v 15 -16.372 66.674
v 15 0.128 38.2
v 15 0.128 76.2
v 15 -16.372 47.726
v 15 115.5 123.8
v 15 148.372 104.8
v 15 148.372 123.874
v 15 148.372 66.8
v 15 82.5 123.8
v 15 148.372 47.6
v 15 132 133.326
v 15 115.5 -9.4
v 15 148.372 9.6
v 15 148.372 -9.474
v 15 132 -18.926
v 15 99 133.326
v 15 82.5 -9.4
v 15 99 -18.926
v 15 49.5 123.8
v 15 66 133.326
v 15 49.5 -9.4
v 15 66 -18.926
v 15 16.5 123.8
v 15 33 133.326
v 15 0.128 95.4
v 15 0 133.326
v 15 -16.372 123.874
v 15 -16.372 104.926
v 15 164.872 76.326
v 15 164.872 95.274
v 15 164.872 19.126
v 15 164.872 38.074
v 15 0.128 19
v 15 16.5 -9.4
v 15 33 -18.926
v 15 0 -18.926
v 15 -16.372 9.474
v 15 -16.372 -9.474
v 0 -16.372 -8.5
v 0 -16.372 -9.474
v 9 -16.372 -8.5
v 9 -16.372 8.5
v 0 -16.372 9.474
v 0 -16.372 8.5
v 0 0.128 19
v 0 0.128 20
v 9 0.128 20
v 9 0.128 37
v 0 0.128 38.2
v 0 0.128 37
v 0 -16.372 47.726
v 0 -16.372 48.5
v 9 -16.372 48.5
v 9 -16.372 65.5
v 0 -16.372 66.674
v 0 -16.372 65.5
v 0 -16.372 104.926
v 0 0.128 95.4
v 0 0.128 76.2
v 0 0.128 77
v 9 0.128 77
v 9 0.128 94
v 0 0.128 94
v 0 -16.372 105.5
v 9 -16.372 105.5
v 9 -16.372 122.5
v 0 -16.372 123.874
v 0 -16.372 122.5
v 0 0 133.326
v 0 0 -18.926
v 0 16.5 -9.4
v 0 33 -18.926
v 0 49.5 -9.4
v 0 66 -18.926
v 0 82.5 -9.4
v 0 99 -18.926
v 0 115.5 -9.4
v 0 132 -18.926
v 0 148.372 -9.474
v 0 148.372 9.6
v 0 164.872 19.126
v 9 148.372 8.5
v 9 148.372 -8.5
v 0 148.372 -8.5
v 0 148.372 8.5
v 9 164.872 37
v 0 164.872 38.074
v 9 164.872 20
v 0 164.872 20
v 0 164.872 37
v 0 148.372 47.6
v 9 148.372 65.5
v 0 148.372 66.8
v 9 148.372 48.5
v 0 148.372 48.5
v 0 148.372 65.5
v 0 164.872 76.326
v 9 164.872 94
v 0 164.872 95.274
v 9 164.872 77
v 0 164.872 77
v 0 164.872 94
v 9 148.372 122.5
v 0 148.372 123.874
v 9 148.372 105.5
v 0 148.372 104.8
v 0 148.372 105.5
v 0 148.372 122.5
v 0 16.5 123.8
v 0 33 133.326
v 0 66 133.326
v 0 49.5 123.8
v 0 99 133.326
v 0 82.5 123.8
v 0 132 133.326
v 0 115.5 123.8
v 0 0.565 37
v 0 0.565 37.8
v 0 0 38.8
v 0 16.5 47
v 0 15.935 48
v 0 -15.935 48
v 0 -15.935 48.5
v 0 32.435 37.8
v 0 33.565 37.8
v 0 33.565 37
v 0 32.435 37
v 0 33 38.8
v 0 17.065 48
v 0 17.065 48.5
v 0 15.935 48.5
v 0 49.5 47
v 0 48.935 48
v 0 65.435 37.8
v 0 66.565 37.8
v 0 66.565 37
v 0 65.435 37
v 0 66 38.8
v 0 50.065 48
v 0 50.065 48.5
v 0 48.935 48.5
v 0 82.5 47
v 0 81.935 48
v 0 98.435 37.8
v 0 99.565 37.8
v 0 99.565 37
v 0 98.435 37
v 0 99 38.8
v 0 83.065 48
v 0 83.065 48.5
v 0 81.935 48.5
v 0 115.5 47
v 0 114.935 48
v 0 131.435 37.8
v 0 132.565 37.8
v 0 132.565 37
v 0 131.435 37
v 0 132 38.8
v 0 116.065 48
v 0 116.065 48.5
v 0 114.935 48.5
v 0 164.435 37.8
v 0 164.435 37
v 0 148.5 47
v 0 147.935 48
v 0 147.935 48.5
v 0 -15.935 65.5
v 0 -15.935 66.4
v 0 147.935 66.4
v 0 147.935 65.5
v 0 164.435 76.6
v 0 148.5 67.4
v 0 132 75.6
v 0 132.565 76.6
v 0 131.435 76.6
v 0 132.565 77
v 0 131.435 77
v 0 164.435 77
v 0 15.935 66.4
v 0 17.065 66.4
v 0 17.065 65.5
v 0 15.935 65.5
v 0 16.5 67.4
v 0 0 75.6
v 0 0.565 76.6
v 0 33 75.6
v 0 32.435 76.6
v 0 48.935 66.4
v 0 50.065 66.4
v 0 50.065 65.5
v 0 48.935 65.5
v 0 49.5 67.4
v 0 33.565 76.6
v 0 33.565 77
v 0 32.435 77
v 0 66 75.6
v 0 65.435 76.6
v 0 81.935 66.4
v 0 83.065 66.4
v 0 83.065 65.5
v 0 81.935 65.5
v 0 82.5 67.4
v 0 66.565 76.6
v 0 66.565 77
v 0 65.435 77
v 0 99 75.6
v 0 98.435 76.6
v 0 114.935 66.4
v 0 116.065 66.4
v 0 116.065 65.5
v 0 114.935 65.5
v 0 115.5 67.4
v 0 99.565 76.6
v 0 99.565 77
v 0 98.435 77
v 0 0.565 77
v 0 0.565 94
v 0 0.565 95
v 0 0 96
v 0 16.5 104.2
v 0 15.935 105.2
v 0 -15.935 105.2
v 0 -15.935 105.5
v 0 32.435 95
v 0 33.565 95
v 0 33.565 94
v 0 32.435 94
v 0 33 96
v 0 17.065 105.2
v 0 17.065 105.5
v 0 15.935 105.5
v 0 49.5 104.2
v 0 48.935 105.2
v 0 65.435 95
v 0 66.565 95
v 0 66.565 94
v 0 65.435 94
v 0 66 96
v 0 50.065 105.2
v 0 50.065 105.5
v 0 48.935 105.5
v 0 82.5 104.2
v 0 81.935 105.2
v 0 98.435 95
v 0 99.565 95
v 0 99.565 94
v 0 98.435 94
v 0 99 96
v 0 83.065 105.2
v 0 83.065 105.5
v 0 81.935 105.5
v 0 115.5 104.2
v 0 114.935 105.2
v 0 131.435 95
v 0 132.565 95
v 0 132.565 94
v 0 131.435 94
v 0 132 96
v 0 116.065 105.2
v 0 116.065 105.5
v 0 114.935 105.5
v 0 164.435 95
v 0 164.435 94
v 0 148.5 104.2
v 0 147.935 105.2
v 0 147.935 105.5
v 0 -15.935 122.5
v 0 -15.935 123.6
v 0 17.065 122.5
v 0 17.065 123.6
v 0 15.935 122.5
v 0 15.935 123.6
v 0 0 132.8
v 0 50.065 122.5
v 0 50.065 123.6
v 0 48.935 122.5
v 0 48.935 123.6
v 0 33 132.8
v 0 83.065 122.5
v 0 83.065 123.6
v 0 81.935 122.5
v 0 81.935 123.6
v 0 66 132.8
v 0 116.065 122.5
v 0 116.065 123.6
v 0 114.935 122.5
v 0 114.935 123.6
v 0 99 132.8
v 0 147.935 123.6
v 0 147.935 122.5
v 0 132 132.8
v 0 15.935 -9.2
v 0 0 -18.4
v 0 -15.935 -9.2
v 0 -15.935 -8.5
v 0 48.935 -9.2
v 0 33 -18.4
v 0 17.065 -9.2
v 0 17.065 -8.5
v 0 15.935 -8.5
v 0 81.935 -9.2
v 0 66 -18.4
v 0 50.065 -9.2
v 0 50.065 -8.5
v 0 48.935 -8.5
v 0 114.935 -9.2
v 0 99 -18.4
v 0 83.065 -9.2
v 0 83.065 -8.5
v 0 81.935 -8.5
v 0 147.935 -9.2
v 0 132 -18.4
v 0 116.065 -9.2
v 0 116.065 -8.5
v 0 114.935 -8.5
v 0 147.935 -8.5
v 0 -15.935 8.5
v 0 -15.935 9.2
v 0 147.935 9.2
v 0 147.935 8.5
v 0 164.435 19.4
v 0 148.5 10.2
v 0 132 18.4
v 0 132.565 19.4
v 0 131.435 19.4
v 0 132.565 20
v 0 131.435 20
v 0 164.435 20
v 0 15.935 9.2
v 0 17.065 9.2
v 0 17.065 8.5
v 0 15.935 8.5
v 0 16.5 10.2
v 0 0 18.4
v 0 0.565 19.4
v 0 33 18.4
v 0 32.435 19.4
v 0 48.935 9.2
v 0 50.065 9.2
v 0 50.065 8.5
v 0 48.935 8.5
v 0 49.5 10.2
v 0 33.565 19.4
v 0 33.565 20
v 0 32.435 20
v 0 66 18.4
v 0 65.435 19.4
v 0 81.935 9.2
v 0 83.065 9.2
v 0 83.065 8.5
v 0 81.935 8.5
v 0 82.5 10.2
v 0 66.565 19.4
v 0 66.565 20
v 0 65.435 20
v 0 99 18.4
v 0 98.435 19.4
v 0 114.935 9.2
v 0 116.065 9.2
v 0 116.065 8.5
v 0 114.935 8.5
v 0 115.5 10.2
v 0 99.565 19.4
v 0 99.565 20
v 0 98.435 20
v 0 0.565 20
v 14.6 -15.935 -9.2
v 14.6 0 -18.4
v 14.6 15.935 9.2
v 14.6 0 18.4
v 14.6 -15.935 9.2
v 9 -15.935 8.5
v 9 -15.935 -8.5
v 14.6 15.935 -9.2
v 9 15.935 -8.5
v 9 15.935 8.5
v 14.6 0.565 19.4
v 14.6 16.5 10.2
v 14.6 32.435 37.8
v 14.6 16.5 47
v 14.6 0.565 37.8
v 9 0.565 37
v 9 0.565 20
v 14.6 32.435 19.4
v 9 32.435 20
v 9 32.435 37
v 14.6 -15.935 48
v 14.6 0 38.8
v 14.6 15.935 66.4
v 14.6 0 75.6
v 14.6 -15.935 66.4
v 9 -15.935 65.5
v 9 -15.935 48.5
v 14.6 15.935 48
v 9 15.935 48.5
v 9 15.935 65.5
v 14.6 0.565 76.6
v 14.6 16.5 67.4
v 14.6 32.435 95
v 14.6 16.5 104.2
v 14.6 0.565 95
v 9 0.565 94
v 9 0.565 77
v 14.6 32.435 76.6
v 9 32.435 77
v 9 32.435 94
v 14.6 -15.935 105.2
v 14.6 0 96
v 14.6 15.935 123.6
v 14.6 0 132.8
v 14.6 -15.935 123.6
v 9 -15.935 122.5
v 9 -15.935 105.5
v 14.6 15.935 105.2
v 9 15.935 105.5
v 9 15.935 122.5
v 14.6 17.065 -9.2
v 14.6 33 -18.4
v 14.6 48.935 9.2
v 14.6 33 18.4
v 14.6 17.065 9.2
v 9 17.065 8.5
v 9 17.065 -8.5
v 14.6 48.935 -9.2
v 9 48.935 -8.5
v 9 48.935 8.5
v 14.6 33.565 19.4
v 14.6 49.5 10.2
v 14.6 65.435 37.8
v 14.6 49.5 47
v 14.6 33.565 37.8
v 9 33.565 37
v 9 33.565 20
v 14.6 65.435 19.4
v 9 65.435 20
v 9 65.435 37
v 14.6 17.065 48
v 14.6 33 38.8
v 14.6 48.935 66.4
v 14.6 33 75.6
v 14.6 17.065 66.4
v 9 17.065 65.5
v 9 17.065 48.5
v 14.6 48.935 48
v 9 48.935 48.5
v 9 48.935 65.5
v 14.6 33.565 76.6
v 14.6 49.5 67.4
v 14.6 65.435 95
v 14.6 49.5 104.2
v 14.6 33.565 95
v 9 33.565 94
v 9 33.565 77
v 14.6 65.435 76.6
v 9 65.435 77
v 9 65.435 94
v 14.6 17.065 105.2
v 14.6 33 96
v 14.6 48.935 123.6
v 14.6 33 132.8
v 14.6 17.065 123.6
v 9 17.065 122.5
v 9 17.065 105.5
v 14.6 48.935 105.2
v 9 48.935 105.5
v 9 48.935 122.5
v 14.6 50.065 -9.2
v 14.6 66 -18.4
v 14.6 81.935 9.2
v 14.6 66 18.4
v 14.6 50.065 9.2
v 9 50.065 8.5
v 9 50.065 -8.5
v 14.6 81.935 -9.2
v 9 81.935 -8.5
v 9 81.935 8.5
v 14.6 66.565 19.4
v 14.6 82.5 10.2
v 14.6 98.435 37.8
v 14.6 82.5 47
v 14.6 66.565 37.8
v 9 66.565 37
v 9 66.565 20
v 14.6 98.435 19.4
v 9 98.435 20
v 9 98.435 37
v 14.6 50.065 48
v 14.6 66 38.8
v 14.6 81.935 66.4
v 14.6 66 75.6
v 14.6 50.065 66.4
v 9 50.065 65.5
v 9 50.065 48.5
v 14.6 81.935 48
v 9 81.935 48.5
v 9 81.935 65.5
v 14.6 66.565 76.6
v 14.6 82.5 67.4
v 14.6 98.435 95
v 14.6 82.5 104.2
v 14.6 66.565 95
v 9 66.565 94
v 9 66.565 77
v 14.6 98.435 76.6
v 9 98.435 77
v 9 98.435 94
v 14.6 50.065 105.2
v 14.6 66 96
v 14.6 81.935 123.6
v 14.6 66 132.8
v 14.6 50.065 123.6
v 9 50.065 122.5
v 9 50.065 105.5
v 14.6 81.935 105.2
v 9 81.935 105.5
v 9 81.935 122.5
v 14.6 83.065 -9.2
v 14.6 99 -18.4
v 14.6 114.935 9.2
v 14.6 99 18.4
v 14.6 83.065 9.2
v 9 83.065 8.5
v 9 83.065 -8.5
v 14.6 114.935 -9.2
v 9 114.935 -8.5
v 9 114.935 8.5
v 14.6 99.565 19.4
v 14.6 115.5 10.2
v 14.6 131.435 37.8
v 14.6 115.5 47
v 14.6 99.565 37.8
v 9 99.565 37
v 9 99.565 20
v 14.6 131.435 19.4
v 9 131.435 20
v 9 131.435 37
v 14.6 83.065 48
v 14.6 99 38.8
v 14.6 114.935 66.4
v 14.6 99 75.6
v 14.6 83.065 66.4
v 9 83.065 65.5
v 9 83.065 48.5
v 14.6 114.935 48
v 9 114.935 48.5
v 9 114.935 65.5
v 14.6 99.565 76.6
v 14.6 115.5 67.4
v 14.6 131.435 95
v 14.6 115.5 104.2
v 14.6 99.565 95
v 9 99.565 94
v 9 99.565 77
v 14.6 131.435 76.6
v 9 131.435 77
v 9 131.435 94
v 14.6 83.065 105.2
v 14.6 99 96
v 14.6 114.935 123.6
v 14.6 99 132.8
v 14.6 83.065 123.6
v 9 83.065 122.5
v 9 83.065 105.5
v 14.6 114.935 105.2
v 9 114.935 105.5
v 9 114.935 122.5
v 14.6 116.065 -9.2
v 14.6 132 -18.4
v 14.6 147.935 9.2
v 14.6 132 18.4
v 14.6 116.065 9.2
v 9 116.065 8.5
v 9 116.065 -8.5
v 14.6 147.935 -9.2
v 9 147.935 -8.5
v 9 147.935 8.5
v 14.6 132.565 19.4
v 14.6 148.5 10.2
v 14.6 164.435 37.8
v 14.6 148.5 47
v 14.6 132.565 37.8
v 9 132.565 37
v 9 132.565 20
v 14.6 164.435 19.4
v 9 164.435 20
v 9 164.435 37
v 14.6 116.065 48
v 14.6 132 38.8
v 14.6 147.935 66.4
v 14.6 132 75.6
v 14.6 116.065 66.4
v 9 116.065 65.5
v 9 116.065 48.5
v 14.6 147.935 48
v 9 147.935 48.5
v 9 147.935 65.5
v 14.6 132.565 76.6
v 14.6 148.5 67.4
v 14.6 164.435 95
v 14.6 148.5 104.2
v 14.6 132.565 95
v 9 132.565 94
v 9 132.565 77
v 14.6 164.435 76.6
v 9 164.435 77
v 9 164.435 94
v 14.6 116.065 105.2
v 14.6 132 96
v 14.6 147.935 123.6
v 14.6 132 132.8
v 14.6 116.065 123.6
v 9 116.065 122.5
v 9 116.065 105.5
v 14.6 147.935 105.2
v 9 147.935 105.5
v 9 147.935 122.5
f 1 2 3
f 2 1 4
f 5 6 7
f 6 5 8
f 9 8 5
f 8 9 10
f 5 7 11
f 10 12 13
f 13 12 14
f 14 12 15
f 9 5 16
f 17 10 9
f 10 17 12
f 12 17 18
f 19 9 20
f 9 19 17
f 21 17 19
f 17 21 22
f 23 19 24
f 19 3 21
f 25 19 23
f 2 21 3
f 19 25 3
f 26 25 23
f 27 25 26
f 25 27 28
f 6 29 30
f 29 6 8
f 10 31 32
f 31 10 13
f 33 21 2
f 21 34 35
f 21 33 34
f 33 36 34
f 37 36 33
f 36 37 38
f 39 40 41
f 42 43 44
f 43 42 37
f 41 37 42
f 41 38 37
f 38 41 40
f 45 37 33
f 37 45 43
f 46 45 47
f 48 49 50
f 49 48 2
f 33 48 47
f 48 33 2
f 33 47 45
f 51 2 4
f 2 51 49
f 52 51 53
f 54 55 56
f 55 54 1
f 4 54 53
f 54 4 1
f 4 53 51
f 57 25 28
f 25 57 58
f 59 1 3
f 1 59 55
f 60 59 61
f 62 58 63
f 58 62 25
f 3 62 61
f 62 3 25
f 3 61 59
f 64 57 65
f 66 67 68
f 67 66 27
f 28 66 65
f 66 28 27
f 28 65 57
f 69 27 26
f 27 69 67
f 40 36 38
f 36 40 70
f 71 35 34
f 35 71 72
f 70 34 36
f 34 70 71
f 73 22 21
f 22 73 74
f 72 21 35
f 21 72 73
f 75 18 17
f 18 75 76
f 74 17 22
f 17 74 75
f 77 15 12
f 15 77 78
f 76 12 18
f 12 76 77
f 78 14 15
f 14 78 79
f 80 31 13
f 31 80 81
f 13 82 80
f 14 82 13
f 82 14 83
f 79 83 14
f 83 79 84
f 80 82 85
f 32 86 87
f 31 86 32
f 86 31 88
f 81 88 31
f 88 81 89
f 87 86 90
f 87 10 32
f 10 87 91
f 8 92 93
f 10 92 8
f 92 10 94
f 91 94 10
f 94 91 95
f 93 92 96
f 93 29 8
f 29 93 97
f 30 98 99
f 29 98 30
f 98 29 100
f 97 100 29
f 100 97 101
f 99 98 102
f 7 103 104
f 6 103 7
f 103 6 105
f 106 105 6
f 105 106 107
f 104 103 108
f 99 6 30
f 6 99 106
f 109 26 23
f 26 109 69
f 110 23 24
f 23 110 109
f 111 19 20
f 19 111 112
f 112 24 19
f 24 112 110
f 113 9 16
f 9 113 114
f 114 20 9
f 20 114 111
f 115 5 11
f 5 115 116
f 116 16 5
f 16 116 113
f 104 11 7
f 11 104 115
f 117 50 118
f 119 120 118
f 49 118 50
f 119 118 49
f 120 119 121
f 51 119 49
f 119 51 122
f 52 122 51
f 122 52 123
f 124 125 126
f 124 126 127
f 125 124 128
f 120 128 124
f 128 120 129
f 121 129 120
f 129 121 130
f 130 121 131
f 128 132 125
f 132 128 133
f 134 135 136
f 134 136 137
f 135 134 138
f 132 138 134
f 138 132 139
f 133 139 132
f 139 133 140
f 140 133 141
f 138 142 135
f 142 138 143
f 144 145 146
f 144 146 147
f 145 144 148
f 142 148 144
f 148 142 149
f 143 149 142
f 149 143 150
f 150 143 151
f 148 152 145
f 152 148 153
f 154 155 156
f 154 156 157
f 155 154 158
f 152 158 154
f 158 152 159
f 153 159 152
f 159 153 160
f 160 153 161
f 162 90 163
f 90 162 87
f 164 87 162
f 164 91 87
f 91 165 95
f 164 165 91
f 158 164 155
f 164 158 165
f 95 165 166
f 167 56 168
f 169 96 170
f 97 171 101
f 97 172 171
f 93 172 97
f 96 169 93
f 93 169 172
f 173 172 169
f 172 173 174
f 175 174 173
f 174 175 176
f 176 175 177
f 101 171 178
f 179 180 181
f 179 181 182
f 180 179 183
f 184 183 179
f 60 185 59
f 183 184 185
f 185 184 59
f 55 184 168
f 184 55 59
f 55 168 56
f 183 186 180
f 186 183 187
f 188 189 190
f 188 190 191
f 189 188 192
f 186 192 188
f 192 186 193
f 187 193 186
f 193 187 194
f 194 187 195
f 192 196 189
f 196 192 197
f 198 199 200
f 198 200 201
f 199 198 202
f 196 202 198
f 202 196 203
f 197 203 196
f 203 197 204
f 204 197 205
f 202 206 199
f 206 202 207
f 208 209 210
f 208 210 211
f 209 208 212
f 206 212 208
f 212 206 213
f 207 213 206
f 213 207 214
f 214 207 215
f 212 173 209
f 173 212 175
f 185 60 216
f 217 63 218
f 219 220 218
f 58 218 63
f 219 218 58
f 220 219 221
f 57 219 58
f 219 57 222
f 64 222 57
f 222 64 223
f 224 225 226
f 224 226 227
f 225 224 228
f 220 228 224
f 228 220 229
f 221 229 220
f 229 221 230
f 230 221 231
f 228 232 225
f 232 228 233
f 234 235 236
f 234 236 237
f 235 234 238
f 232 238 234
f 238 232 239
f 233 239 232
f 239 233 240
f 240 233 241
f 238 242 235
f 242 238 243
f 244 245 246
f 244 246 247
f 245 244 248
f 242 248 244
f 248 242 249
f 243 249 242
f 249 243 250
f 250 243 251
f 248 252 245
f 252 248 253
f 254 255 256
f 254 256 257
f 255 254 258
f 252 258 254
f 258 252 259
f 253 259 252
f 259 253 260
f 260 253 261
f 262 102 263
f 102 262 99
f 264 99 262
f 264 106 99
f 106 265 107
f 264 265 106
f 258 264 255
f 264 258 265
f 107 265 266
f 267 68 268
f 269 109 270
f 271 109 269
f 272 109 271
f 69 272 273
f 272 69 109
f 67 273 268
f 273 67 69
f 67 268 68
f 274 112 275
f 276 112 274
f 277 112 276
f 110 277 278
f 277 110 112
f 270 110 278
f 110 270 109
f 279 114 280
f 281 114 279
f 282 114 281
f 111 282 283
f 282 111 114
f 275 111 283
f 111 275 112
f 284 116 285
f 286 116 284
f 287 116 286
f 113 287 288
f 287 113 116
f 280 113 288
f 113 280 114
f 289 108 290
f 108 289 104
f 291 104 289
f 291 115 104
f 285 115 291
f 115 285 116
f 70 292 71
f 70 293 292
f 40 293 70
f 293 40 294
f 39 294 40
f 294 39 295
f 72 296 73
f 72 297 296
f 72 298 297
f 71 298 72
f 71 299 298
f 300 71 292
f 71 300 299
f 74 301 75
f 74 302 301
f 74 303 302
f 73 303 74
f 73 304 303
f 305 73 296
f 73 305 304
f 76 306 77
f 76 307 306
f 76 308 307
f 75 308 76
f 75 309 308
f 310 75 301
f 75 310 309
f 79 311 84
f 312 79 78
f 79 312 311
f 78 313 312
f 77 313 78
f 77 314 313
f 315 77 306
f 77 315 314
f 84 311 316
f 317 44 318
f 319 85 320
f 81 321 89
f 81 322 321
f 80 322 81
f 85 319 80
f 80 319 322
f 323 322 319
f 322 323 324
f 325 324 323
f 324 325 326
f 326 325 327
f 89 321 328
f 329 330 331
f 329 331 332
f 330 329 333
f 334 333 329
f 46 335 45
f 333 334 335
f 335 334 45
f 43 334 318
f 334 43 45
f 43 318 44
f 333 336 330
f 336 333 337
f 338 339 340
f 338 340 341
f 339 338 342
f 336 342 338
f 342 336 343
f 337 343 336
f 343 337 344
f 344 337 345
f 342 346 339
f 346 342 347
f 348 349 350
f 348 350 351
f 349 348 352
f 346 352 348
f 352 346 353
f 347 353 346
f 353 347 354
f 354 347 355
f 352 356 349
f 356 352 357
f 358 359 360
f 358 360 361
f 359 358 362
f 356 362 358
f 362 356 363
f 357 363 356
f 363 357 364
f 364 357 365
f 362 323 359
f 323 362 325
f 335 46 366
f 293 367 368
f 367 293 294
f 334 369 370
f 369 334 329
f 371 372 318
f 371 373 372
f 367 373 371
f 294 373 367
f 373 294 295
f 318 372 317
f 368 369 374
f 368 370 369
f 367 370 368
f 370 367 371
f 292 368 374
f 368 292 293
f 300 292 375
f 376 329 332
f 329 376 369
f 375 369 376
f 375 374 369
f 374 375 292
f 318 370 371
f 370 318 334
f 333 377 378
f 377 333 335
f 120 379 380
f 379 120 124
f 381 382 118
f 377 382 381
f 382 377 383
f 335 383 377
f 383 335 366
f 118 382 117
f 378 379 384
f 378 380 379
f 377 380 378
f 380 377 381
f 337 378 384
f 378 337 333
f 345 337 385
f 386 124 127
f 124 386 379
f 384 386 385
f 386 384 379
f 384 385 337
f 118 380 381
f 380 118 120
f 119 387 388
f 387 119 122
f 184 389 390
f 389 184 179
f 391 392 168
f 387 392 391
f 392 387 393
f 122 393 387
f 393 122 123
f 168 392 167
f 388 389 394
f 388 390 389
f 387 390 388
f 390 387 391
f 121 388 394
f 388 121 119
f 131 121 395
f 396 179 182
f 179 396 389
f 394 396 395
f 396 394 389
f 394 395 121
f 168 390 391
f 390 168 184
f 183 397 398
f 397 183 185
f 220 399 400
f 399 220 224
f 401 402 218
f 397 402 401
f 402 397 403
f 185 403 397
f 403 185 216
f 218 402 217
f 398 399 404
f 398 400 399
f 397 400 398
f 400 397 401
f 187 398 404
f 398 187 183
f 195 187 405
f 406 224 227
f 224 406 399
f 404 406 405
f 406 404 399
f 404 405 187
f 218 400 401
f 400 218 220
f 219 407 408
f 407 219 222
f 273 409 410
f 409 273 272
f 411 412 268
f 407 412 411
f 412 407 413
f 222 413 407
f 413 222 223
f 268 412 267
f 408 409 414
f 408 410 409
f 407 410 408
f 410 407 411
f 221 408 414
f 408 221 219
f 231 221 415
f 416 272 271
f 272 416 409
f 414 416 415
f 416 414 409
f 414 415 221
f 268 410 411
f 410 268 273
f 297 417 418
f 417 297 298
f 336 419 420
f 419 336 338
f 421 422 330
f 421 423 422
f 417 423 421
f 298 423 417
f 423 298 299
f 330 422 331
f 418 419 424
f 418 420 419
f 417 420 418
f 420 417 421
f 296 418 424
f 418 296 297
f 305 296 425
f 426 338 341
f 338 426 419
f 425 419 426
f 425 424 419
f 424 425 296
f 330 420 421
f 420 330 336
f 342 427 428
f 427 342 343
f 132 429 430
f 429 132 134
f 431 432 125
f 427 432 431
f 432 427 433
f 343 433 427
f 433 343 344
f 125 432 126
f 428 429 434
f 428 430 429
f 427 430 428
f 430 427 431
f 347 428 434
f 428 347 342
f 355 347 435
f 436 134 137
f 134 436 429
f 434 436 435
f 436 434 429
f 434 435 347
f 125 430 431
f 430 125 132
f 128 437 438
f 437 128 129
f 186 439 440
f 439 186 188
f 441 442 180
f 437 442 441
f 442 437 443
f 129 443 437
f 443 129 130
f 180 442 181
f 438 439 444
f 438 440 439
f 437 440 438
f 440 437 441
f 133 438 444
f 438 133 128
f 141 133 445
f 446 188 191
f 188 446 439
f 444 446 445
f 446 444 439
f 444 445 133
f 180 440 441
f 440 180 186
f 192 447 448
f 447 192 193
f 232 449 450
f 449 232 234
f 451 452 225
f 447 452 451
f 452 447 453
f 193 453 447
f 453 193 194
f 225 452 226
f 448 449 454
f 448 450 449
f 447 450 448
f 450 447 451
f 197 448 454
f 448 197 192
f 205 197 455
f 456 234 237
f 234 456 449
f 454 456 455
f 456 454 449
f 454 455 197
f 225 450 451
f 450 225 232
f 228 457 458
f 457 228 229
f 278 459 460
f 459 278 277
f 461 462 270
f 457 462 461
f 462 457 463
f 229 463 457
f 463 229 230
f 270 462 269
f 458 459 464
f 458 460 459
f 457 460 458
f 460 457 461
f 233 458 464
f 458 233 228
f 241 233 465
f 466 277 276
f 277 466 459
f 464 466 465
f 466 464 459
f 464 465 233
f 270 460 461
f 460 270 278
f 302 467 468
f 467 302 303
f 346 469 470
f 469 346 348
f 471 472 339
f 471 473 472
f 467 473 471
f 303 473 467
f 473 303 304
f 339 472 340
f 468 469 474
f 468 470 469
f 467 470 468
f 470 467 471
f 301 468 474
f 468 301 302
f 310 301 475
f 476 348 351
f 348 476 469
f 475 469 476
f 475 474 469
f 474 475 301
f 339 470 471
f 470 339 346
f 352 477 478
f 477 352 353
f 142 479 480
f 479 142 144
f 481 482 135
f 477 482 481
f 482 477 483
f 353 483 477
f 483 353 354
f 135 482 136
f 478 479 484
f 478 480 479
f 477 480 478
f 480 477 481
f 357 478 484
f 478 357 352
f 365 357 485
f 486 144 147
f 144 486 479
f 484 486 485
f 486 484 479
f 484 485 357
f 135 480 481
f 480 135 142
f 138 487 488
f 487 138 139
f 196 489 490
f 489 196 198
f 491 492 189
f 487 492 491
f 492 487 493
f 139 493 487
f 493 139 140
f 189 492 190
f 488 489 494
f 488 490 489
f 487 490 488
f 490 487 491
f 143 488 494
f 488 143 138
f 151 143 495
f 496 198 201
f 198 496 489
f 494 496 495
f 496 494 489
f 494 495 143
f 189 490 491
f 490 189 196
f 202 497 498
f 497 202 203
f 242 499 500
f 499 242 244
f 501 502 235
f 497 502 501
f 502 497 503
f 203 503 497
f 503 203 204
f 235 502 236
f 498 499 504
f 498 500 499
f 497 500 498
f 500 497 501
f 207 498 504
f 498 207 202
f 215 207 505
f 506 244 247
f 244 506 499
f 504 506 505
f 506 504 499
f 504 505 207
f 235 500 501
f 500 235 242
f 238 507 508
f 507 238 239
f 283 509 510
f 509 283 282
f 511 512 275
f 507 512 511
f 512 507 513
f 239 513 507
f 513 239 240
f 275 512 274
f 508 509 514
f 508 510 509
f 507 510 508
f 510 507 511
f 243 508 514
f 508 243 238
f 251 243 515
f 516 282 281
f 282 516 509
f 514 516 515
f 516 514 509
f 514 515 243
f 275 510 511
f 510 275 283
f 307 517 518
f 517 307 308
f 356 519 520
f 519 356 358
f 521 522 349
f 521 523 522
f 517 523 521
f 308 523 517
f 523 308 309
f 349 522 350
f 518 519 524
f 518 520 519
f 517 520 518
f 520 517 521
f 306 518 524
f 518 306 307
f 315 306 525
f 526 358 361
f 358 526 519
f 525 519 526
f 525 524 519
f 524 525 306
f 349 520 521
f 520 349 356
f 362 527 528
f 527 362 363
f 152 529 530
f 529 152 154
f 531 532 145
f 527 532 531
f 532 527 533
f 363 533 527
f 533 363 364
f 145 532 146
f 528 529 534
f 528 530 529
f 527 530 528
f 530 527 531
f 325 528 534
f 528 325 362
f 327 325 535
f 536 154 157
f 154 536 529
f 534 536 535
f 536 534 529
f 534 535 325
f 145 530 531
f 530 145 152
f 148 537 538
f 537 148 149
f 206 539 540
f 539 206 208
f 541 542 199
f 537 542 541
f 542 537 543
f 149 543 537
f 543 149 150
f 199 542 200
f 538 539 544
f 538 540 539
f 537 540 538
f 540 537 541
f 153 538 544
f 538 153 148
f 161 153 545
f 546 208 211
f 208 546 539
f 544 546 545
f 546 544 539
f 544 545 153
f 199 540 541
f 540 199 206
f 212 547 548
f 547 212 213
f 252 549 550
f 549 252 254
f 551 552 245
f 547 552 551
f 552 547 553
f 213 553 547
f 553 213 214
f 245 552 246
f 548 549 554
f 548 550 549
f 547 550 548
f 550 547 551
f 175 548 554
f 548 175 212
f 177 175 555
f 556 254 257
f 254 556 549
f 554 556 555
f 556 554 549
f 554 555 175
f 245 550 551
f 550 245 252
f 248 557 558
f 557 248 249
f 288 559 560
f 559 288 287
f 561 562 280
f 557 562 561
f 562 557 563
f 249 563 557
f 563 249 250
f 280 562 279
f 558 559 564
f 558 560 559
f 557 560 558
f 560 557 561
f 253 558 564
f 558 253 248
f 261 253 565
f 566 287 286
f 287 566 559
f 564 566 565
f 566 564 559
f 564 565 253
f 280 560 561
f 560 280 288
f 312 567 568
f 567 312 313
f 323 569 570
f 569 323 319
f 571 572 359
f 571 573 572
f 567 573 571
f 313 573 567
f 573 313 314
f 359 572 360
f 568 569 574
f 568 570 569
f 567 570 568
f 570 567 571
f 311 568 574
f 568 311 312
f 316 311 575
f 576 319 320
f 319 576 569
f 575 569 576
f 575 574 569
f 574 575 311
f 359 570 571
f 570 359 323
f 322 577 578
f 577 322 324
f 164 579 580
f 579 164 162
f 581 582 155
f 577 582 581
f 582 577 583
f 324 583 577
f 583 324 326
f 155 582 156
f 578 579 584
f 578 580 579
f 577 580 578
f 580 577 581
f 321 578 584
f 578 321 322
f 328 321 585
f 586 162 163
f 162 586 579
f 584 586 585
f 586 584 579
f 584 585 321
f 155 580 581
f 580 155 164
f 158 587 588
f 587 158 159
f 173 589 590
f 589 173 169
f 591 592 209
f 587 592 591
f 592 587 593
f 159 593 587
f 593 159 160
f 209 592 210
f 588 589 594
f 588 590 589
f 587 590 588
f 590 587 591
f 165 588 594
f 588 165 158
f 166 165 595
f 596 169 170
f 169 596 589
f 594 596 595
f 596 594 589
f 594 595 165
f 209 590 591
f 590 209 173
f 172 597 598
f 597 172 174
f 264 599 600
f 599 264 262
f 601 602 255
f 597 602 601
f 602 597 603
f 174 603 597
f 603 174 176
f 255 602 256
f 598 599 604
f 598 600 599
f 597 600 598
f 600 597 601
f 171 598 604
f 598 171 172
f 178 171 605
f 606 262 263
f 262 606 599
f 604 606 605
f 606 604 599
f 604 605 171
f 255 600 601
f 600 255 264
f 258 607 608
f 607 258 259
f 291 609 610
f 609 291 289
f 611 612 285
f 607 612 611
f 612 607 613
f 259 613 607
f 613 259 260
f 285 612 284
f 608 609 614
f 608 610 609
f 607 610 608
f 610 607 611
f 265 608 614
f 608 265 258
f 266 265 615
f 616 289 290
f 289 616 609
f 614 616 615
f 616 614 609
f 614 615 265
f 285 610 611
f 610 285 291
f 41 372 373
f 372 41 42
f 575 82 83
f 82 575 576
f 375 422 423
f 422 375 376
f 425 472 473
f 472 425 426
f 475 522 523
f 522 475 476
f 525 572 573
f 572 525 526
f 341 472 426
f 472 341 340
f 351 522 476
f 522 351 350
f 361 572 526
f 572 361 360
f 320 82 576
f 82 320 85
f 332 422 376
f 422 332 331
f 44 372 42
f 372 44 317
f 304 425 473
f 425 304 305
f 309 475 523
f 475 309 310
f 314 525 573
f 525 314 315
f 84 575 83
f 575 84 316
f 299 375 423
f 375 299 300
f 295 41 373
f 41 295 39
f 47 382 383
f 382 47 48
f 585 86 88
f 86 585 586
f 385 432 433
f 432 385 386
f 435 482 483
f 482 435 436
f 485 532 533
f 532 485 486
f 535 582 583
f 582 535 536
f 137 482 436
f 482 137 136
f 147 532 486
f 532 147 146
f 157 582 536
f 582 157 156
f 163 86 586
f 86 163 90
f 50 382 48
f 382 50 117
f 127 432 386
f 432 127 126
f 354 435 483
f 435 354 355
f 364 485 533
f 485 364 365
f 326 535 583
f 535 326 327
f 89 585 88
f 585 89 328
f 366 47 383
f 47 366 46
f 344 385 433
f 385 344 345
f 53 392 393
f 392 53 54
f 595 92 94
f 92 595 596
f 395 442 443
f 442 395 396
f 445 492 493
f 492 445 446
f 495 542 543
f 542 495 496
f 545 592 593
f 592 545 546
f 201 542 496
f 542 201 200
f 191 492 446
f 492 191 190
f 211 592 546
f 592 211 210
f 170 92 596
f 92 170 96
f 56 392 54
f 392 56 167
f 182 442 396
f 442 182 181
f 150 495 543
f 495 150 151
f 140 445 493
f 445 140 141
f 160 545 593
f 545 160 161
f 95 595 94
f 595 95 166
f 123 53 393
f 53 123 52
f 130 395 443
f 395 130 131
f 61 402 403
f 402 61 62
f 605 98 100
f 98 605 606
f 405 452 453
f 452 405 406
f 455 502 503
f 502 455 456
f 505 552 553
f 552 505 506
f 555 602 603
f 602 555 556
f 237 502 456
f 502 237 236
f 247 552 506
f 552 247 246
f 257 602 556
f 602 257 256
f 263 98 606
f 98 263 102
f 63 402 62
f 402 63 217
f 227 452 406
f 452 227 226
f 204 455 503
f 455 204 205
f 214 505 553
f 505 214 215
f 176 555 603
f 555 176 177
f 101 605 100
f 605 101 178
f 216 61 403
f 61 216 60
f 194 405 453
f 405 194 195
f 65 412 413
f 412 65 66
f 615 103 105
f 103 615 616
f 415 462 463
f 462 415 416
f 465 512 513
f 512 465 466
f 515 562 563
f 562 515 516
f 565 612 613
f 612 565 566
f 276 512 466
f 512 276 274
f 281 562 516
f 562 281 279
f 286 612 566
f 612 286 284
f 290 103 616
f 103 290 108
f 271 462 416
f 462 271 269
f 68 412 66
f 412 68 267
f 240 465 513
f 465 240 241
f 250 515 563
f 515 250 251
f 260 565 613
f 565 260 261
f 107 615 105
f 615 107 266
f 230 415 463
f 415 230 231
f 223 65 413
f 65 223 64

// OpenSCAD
$fn=200;

length = 75;
width= 20;
height = 45;

wall=4;

hole_offset_left=33;
hole_offset_height=10;
box_width=2;

// Radius pipe with leds
ir1=16.8/2;
// Height for initial increase
ih1=30;
// Height to keep stable until end of leds
ih2=40;
// Hole radius to be cut later by manual tools
hr1=0.5;

// Position for microcontroller housing
mcr=22.4/2;

// Length for microcontroller hole
mch=60+5;

// Battery radius
br=18.8;
// Battery height
bh=15;

dist=33;
   
cbr=br*2;

difference() {
    board();
    translate([0,-30,-8.5]) cube(size=[9,200,17]);
    translate([0,-30,20]) cube(size=[9,200,17]);
    translate([0,-30,48.5]) cube(size=[9,200,17]);
    translate([0,-30,48.5+28.5]) cube(size=[9,200,17]);
    translate([0,-30,48.5+28.5+28.5]) cube(size=[9,200,17]);
}


module board() {
    difference() {

        translate([0,0,0]) {
            for ( i = [0 : 4] ){
                for ( j = [0 : 4] ){
                    translate([0,i*dist+(dist/2*(j%2)),j*28.6]){
                        difference() {
                            translate([0,0,0]) rotate([0,90,0]) cylinder(r=br+0.4,h=bh, $fn=6);
                            translate([-0.4,0,0]) rotate([0,90,0]) cylinder(r=br-0.4,h=bh, $fn=6);
                        }
                    }
                }
            }
        }
        outside();
    }
}


module outside()
{
    translate([-10,0,0]) {
        for ( i = [-1 : -1] ){
            for ( j = [-1 : 5] ){
                translate([0,i*dist+(dist/2*(j%2)),j*28.6]){
                    difference() {
                        translate([0,0,0]) rotate([0,90,0]) cylinder(r=br+0.4,h=bh+10, $fn=6);
                    }
                }
            }
        }
    }

    translate([-10,0,0]) {
        for ( i = [-1 : 5] ){
            for ( j = [-1 : -1] ){
                translate([0,i*dist+(dist/2*(j%2)),j*28.6]){
                    difference() {
                        translate([0,0,0]) rotate([0,90,0]) cylinder(r=br+0.4,h=bh+10, $fn=6);
                    }
                }
            }
        }
    }

    translate([-10,0,0]) {
        for ( i = [5 : 5] ){
            for ( j = [-1 : 5] ){
                translate([0,i*dist+(dist/2*(j%2)),j*28.6]){
                    difference() {
                        translate([0,0,0]) rotate([0,90,0]) cylinder(r=br+0.4,h=bh+10, $fn=6);
                    }
                }
            }
        }
    }

    translate([-10,0,0]) {
        for ( i = [-1 : 5] ){
            for ( j = [5 : 5] ){
                translate([0,i*dist+(dist/2*(j%2)),j*28.6]){
                    difference() {
                        translate([0,0,0]) rotate([0,90,0]) cylinder(r=br+0.4,h=bh+10, $fn=6);
                    }
                }
            }
        }
    }
}
